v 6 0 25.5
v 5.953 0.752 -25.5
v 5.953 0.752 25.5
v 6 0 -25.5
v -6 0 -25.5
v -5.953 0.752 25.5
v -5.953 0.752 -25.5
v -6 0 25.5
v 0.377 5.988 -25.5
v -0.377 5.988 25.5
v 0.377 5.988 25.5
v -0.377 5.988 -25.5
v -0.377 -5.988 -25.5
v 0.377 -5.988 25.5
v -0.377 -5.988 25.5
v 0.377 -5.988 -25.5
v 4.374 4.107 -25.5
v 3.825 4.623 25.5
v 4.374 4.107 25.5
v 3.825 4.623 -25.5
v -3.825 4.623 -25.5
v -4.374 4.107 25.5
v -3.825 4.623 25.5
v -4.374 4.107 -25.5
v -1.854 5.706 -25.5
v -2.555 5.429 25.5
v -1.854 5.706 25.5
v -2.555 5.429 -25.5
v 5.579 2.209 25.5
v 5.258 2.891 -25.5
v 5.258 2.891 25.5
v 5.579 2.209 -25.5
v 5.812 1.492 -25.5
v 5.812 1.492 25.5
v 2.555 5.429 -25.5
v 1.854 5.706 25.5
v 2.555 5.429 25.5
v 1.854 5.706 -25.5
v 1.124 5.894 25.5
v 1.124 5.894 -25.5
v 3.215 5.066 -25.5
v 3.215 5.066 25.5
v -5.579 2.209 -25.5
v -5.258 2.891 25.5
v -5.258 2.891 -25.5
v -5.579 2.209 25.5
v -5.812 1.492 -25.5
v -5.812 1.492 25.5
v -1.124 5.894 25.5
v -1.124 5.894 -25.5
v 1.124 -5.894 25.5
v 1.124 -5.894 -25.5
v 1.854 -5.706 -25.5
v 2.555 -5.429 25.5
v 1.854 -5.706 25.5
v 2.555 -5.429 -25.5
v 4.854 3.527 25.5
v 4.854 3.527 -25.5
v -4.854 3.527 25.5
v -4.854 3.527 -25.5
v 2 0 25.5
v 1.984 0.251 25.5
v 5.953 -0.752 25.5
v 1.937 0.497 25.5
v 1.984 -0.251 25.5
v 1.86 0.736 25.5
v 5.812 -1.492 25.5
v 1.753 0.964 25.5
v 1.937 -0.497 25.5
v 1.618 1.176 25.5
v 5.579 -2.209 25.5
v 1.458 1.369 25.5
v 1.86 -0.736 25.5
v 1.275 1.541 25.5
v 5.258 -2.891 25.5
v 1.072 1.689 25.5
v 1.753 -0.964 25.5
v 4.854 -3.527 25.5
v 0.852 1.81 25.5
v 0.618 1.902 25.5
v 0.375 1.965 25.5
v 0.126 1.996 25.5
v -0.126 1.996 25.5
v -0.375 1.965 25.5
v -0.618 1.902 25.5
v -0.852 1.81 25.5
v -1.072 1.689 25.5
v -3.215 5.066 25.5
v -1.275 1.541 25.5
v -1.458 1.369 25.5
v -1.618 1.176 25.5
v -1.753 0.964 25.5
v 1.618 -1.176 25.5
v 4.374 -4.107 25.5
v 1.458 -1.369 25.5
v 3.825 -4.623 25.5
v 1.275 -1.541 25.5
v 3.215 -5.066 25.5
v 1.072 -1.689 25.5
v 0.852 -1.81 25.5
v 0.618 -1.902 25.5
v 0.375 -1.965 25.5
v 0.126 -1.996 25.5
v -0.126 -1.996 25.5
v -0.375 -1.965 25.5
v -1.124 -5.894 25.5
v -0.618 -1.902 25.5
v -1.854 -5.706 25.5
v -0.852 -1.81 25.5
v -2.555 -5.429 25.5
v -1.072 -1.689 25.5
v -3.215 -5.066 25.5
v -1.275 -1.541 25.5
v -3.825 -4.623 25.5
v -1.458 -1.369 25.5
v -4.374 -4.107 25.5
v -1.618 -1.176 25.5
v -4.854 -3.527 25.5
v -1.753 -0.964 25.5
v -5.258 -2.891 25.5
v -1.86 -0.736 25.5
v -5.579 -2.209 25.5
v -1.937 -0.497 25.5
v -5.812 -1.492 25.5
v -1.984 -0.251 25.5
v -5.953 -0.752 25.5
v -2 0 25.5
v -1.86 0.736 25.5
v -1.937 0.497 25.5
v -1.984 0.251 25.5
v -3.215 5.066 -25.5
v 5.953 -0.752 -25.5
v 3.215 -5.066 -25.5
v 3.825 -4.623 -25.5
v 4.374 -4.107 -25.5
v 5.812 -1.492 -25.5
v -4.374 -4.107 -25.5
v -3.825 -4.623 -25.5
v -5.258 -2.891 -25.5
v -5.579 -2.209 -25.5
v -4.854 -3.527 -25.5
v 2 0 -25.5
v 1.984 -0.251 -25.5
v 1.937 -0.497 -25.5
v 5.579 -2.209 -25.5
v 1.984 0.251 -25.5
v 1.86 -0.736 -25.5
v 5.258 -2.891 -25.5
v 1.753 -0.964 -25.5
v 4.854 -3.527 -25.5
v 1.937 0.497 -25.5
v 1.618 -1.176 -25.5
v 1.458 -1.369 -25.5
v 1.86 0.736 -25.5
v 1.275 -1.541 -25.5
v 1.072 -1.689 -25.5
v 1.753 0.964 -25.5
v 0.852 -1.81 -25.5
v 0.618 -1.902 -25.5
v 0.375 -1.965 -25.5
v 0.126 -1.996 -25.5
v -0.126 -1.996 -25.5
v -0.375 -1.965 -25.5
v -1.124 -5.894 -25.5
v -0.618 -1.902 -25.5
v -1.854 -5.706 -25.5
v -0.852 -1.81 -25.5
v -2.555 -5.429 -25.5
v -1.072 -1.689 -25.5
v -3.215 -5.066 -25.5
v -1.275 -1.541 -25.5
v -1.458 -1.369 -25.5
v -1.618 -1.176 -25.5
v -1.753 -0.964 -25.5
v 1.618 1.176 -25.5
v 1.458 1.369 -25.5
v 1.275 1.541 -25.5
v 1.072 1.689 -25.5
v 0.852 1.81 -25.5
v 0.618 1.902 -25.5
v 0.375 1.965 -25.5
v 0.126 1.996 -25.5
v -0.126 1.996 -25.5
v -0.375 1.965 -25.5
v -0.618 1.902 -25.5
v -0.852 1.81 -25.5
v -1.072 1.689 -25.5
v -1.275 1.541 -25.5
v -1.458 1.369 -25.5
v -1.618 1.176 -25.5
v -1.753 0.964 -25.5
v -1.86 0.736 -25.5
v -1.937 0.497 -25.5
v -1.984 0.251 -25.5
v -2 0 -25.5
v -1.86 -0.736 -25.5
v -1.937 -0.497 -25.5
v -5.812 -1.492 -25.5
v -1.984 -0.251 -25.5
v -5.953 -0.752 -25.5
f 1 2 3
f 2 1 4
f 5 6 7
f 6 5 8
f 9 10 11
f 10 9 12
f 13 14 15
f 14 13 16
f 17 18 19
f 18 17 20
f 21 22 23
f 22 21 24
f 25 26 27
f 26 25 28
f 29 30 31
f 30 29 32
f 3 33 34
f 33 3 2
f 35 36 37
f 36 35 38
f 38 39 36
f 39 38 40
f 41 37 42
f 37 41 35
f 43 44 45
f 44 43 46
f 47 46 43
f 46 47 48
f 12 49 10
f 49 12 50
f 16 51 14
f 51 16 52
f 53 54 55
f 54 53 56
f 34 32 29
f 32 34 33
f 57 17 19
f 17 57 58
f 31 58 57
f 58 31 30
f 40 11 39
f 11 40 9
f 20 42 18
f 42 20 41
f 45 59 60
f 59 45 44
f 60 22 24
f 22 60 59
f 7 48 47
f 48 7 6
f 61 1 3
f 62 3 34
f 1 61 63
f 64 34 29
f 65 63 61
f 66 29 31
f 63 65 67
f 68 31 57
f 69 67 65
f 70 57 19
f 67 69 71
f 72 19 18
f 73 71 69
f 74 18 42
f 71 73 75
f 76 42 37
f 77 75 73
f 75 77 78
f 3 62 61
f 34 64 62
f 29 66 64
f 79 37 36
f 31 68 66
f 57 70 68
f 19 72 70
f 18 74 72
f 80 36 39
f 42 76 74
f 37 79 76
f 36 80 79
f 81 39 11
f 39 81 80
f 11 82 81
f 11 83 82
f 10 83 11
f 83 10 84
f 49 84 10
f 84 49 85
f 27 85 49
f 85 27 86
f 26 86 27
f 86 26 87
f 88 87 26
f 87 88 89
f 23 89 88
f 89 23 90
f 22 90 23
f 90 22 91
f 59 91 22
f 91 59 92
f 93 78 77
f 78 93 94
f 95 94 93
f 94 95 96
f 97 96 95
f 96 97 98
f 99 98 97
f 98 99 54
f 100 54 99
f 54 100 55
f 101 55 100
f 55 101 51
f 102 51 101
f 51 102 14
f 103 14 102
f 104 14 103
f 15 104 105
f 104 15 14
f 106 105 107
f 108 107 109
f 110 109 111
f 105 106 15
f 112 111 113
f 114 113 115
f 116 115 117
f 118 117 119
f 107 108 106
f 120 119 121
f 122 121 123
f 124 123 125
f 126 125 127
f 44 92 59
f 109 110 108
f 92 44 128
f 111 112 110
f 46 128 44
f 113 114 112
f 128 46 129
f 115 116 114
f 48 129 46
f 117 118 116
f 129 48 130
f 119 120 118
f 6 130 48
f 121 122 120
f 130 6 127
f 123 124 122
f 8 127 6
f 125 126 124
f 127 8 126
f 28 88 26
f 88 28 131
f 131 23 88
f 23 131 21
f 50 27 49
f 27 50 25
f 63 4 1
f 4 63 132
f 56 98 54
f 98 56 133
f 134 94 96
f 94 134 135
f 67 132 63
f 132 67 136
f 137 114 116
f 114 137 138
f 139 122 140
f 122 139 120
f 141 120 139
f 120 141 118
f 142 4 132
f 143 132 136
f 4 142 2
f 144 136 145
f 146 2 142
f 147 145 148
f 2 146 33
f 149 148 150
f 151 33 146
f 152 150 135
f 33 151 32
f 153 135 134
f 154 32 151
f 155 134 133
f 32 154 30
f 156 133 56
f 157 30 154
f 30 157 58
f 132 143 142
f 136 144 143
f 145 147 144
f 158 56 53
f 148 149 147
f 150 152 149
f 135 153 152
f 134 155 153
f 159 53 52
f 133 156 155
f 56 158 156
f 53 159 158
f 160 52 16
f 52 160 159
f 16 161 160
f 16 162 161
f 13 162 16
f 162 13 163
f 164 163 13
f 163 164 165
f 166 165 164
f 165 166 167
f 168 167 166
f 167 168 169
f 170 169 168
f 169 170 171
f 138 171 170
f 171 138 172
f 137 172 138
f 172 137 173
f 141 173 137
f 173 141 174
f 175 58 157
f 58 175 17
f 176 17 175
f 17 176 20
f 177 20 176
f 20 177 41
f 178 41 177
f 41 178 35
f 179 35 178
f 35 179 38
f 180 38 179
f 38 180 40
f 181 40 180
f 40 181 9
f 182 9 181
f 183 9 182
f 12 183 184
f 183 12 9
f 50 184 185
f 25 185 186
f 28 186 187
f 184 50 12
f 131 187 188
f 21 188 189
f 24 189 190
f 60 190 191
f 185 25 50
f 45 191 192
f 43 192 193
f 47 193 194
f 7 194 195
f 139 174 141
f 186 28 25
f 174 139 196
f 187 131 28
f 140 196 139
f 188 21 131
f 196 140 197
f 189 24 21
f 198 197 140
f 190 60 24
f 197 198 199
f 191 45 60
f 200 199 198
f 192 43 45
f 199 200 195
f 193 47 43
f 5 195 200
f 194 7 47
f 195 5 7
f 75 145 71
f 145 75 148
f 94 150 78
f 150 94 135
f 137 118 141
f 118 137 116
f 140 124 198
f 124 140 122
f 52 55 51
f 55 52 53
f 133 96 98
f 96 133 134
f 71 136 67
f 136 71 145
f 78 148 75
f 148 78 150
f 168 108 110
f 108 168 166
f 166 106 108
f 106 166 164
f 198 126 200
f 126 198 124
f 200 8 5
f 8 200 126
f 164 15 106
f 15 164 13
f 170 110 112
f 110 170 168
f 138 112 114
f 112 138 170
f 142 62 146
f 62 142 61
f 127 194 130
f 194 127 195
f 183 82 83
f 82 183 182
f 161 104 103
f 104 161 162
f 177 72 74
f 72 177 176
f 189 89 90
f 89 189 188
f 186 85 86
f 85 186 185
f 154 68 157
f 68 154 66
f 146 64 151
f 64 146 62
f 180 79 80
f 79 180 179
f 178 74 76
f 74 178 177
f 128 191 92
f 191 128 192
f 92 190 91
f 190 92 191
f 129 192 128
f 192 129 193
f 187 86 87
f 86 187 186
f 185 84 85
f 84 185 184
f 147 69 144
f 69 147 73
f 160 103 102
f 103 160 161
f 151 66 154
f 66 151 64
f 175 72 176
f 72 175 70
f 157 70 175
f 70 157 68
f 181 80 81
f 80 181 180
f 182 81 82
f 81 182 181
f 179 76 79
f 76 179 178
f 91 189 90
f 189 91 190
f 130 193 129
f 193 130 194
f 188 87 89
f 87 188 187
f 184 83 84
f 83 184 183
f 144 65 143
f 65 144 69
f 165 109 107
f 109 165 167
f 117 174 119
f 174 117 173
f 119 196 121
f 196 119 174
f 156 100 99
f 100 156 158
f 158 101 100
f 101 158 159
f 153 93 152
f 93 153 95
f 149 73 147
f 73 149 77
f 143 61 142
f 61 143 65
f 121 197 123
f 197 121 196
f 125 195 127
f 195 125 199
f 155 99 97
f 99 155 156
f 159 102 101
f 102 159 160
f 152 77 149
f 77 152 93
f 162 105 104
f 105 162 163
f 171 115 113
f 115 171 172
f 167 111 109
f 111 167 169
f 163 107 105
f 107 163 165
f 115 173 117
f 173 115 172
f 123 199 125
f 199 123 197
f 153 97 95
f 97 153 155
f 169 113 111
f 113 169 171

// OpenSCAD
$fn = 50;


difference() {
	union() {
		translate(v = [0, 0, -25.5000000000]) {
			cylinder(h = 51, r = 6.0000000000);
		}
	}
	union() {
		translate(v = [0, 0, -100.0000000000]) {
			cylinder(h = 200, r = 2);
		}
	}
}
